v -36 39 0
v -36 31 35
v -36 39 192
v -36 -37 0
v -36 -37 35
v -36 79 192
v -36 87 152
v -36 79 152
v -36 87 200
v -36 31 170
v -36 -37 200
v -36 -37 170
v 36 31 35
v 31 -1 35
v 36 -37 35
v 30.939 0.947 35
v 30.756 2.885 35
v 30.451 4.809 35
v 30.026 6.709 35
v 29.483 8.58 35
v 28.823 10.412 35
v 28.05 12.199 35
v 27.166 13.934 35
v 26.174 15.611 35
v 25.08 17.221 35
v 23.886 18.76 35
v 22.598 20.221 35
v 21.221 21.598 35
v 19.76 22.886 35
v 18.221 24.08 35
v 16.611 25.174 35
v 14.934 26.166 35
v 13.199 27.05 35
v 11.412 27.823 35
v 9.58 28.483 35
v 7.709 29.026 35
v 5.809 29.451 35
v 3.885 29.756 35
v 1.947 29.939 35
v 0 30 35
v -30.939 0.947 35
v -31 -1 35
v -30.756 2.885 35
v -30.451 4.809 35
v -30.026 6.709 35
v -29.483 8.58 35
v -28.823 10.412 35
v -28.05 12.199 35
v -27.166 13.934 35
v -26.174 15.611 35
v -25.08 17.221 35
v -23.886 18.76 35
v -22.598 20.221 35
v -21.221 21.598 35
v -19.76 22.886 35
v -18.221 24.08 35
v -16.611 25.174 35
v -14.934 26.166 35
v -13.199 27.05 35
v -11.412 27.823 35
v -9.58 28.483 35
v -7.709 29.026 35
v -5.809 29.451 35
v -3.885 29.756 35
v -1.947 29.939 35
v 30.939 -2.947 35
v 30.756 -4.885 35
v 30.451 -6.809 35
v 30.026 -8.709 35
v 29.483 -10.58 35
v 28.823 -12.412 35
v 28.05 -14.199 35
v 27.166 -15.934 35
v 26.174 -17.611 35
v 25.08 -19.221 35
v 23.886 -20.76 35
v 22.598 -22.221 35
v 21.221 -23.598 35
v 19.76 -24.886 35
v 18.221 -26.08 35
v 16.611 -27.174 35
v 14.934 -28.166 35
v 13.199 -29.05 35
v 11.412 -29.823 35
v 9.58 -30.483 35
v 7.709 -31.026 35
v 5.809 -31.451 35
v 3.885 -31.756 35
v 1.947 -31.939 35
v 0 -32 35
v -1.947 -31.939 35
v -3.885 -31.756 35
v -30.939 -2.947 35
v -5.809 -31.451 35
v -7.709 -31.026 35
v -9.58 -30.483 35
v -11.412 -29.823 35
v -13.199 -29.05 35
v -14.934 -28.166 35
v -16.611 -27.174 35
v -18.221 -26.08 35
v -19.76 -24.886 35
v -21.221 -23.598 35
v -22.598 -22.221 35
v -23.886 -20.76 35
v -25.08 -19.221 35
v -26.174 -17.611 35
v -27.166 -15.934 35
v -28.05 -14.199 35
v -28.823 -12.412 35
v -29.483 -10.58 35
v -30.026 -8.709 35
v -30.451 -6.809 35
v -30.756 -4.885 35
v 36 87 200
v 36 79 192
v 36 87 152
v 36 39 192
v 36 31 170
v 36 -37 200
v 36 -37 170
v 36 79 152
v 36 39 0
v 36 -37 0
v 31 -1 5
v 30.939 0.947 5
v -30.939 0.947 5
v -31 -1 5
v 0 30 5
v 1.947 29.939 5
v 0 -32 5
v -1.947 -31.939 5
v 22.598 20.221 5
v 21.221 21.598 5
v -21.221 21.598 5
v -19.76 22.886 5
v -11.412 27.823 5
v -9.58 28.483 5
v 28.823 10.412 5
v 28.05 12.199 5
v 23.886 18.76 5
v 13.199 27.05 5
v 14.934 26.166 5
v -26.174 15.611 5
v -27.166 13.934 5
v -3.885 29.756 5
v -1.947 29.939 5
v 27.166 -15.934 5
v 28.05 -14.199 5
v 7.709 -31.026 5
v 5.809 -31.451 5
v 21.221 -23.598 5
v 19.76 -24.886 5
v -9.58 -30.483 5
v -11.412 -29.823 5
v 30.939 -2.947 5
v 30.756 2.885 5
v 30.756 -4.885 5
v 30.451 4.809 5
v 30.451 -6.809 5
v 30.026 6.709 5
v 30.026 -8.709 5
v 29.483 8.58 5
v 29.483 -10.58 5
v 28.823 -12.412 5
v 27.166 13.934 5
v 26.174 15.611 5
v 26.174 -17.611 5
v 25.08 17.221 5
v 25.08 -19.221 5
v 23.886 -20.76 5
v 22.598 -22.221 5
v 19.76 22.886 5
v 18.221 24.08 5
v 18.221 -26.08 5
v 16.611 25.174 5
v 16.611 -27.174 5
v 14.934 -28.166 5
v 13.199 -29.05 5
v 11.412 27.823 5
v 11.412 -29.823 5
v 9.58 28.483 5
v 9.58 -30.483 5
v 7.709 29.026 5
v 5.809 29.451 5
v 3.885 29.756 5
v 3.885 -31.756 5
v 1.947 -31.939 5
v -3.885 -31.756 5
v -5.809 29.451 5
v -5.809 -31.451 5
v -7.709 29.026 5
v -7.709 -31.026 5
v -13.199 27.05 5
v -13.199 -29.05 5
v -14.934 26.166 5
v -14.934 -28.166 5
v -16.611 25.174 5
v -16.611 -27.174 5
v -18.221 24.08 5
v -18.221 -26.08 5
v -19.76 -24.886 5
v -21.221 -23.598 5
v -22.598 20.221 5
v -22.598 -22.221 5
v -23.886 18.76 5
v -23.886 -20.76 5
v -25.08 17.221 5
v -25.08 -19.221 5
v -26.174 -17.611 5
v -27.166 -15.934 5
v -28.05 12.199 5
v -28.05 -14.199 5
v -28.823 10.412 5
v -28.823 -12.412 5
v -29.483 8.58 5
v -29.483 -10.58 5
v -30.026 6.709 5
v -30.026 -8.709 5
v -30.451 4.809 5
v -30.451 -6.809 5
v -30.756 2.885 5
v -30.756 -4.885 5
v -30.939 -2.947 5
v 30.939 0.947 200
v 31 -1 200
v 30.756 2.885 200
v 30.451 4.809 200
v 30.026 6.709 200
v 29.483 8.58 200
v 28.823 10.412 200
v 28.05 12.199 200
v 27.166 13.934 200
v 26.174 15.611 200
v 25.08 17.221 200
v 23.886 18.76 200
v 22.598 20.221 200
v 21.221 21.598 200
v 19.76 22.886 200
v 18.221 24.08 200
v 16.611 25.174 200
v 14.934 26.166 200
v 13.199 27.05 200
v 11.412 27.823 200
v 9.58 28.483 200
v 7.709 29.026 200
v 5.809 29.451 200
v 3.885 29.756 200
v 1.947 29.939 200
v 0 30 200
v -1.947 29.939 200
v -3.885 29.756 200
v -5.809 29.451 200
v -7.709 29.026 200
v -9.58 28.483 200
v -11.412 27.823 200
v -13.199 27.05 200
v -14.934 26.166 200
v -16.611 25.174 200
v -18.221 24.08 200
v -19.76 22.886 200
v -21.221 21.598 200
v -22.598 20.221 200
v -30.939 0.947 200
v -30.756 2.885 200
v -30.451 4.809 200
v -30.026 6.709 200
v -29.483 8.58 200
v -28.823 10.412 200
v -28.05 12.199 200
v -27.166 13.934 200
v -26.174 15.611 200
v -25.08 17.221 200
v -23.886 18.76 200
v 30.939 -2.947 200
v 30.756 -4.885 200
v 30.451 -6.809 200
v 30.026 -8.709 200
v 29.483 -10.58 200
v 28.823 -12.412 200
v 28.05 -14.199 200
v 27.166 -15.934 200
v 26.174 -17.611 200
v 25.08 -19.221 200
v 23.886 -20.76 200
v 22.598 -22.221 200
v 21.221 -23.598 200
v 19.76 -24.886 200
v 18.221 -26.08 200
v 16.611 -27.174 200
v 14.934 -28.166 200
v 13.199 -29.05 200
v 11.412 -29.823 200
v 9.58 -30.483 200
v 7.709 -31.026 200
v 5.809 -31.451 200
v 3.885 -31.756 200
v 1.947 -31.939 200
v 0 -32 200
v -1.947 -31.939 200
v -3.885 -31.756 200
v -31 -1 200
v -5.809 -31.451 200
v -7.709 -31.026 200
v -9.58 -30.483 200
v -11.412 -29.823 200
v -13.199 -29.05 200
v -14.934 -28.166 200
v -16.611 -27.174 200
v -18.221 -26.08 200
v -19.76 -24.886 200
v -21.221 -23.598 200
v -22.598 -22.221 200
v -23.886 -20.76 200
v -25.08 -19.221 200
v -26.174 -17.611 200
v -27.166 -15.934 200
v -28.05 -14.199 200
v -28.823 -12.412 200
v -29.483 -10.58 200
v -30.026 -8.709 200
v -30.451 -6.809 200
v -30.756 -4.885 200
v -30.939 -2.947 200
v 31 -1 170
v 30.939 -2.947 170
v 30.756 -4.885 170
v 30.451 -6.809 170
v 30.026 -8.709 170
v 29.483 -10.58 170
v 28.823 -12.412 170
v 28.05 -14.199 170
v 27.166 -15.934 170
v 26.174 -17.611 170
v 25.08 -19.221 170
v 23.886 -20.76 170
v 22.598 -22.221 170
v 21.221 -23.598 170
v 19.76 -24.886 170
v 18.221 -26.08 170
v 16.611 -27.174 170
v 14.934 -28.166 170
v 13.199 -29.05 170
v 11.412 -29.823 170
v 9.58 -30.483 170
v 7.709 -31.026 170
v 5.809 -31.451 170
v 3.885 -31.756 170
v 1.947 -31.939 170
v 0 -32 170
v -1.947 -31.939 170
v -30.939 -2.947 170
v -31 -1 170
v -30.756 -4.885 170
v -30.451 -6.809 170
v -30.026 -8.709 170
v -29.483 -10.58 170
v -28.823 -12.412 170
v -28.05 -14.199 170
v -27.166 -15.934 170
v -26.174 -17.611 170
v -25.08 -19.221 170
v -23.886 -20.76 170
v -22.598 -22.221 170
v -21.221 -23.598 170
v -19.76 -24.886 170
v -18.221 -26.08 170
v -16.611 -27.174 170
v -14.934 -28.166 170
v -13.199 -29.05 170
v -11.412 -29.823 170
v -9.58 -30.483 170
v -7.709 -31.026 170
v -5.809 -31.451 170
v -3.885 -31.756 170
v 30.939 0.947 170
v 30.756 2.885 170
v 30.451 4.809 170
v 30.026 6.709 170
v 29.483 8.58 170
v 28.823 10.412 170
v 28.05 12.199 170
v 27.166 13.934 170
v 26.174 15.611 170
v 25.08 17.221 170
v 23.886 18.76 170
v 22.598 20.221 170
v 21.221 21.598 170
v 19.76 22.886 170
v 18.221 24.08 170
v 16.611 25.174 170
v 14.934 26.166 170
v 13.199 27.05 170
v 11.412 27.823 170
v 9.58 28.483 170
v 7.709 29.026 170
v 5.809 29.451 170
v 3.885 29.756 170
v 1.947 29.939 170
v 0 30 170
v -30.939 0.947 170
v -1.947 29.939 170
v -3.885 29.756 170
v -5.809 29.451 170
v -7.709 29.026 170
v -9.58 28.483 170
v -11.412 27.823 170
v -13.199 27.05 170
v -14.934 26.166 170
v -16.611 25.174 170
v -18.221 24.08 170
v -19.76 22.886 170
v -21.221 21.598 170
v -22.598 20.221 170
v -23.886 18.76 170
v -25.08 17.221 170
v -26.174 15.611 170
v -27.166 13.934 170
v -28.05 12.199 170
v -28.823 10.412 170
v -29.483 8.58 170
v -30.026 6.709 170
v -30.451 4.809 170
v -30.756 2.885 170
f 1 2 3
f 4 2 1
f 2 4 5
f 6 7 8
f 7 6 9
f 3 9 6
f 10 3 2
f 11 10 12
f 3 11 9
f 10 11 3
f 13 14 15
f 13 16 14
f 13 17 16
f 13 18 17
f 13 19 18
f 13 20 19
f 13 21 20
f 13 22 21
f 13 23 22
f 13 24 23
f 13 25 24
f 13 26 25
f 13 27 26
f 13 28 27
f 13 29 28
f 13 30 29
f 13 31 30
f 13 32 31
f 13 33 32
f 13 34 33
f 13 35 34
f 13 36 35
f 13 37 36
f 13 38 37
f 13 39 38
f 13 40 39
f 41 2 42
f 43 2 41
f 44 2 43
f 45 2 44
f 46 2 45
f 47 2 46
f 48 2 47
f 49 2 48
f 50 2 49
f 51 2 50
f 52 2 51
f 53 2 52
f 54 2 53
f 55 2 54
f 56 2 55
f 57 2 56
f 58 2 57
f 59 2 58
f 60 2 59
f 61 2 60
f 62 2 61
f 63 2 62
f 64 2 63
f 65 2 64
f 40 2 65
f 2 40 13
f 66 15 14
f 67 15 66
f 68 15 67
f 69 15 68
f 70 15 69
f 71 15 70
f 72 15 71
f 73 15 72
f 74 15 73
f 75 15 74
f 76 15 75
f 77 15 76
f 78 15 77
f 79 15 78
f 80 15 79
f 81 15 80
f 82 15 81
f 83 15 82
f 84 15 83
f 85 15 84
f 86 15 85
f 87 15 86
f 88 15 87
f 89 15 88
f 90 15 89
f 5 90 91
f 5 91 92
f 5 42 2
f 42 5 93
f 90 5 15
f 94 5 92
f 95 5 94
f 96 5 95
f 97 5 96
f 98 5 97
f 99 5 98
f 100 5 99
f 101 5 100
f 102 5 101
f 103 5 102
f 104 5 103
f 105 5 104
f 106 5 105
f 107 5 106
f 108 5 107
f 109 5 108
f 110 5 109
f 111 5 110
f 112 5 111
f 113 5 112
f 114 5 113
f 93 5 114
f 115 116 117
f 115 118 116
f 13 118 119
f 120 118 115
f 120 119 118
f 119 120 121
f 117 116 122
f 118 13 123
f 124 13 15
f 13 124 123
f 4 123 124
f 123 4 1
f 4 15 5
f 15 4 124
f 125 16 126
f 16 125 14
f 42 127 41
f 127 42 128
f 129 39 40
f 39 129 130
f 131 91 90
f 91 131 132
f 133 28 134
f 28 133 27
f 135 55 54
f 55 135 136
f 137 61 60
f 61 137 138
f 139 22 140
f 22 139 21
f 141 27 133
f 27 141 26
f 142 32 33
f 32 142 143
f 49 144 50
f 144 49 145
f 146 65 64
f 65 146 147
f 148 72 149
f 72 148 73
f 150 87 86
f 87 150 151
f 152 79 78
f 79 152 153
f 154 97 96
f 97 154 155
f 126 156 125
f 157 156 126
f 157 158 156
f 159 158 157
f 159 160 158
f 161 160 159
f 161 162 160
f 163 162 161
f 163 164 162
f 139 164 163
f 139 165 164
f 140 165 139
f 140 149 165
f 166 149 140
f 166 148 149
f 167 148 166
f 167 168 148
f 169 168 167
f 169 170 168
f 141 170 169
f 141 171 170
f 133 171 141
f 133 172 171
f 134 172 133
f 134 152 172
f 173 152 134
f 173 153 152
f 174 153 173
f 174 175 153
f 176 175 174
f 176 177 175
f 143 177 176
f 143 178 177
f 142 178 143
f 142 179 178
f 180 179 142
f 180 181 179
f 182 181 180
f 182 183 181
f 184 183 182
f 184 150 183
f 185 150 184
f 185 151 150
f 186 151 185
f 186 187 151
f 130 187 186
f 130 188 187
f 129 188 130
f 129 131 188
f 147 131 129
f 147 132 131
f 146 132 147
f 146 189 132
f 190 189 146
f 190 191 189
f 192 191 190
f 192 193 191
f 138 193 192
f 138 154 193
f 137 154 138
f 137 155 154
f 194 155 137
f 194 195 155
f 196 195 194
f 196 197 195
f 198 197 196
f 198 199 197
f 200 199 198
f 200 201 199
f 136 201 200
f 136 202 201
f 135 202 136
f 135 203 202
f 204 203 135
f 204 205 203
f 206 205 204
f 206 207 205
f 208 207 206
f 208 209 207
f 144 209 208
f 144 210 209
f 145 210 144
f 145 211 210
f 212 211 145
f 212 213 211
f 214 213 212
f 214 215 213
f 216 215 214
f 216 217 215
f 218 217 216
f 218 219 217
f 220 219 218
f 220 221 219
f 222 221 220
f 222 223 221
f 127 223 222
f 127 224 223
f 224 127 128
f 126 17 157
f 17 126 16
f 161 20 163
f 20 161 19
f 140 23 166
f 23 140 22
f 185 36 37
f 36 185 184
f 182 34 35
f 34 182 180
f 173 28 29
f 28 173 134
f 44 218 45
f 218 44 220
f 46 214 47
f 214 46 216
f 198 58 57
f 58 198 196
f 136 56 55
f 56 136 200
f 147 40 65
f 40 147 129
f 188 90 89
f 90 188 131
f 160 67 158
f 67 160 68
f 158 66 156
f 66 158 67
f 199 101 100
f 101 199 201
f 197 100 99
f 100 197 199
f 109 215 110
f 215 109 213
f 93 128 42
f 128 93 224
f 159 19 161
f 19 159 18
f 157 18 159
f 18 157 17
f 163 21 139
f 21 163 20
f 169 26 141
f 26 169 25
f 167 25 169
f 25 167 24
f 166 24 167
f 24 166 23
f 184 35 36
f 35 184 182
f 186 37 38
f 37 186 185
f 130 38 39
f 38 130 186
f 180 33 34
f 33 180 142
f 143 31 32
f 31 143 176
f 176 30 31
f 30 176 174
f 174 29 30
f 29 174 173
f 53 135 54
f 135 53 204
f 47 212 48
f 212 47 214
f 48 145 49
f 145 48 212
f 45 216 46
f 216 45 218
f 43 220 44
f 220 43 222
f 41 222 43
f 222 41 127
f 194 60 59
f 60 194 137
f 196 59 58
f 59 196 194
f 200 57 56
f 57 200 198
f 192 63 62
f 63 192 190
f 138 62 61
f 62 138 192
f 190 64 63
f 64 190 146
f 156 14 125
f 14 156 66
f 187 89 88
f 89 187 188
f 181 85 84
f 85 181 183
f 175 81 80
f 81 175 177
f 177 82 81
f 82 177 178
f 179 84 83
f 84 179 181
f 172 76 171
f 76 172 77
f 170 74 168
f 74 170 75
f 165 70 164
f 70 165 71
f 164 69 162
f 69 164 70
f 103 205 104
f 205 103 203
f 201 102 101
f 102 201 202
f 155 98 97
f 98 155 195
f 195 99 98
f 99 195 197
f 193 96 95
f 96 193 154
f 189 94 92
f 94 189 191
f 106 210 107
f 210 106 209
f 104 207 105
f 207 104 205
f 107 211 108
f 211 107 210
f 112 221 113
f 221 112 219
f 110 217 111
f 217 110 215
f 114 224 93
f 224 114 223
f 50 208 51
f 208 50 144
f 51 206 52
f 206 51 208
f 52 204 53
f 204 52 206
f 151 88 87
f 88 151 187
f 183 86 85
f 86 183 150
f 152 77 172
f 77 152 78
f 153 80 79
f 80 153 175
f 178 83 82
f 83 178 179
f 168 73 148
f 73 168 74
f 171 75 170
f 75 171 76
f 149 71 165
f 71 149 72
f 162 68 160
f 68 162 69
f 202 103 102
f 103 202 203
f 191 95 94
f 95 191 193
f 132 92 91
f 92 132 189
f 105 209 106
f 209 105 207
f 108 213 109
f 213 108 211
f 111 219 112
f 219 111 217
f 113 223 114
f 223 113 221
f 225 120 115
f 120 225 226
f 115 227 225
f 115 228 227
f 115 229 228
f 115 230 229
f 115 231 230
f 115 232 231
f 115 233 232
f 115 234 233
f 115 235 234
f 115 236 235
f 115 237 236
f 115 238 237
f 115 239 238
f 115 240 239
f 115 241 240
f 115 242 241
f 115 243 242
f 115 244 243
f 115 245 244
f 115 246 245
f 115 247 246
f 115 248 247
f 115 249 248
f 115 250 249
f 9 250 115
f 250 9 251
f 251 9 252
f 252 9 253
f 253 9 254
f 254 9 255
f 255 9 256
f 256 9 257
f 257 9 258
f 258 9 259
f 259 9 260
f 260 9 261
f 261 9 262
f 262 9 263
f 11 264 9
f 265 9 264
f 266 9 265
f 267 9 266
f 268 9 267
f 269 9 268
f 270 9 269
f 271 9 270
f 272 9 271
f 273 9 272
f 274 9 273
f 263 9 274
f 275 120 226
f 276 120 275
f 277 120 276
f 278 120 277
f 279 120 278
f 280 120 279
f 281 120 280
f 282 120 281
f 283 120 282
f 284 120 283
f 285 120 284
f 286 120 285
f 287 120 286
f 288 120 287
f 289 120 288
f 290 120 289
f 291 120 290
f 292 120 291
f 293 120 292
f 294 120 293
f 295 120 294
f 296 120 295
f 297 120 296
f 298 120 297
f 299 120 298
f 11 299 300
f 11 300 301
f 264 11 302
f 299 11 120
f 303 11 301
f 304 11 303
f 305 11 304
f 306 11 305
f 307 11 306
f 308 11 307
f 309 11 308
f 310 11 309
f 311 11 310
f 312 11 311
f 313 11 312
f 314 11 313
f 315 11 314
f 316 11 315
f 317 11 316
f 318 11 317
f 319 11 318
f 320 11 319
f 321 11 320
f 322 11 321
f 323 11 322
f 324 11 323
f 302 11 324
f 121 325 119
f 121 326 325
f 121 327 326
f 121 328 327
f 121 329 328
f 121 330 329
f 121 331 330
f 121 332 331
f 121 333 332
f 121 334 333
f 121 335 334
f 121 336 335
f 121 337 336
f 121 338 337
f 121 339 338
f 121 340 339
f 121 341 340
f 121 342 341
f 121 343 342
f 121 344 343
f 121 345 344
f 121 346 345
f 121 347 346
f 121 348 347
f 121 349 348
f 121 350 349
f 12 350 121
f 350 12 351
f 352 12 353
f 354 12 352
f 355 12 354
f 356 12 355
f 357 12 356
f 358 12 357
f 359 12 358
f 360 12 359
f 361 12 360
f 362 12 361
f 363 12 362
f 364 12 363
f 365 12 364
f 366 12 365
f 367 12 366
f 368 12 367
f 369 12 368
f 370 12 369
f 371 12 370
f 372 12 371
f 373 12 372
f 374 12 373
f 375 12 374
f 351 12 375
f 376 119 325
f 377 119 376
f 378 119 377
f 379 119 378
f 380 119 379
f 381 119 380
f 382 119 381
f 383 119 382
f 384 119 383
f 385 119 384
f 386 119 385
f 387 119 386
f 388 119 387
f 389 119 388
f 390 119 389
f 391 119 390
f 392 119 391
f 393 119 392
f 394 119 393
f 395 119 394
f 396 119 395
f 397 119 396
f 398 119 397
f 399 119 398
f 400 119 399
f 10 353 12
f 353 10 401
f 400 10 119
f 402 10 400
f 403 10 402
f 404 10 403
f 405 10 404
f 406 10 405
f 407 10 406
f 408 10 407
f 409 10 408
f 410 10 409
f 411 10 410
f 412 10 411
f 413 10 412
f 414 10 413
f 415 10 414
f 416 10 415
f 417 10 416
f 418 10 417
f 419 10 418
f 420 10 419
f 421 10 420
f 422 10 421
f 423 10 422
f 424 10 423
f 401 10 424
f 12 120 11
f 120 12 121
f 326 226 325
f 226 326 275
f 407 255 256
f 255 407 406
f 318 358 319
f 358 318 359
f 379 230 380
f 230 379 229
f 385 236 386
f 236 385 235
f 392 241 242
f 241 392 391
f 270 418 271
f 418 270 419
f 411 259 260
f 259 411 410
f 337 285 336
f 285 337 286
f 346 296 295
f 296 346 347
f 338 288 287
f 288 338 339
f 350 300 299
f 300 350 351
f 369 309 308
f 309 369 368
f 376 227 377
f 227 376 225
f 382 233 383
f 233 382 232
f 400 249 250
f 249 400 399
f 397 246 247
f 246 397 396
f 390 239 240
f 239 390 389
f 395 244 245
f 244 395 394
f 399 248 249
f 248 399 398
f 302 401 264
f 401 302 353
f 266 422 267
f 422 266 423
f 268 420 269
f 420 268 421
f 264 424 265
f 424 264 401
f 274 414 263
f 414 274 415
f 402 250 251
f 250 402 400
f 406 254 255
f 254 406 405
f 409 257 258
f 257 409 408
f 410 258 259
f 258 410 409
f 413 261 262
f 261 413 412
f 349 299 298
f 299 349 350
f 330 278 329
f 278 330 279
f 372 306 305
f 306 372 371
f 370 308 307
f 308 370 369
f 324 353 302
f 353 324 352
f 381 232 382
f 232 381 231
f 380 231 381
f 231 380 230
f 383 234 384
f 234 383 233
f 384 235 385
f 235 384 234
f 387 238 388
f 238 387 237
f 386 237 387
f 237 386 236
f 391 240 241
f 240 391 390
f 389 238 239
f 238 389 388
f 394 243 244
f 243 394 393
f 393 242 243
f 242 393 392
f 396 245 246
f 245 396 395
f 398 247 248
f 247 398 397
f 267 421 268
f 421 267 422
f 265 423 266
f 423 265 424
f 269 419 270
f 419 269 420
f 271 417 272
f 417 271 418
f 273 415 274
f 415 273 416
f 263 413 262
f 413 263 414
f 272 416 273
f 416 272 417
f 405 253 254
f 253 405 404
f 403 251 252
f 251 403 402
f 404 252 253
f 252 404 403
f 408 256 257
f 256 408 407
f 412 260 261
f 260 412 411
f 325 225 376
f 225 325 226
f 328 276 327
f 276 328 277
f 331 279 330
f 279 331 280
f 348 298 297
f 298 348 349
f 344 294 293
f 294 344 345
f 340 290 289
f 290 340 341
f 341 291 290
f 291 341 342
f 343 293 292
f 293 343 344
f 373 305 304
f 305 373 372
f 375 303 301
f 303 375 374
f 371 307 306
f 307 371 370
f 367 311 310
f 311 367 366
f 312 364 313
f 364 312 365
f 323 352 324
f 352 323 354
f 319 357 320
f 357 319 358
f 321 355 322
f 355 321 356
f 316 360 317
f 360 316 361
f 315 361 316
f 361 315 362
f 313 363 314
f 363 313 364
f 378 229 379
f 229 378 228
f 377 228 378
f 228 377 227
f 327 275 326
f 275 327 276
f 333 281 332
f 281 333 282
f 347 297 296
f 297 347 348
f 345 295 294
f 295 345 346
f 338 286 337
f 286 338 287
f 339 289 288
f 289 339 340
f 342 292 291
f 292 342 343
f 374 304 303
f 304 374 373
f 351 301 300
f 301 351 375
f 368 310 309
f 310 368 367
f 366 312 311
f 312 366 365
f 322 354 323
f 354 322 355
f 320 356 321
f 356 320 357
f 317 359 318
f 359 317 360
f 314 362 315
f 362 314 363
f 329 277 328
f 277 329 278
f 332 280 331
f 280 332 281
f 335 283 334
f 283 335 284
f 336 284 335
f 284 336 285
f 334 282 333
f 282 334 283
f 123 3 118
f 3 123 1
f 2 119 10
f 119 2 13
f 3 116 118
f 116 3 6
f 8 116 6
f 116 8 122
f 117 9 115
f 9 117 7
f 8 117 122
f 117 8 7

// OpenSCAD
inner_width_of_collars = 61;
height_of_holder       = 200; 
depth_of_hook          = 40;
height_of_hook         = 40;
height_of_collars      = 30; 
thickness_of_holder    = 8;
thickness_of_collars   = 5;
thickness_of_bottom    = 5; 
$fn=100;

BASE_WIDTH            = inner_width_of_collars + 1;
OUTER_DIAMETER        = BASE_WIDTH + thickness_of_collars * 2;
HOLDER_POSITION       = BASE_WIDTH / 2 + thickness_of_holder / 2;
width_of_holder       = OUTER_DIAMETER;
upper_collar_position = height_of_holder - height_of_collars; 

module Holder() {
    translate([0, HOLDER_POSITION, height_of_holder / 2]) {
        cube(size = [width_of_holder, thickness_of_holder, height_of_holder], center = true);
    }
    difference() {
        translate([0,-1,(thickness_of_bottom + height_of_collars)/2])            
            cube([OUTER_DIAMETER,OUTER_DIAMETER,thickness_of_bottom + height_of_collars],true);
        translate([0,-1,thickness_of_bottom])
            cylinder(h=height_of_collars+.1 , d=BASE_WIDTH);
    }
    translate([0, -1, upper_collar_position]) {
        difference() 
        {
            translate([0,0,height_of_collars/2])            
                cube([OUTER_DIAMETER,OUTER_DIAMETER,height_of_collars],true);
            translate([0,0,-.1])
                cylinder(h=height_of_collars+.2, d=BASE_WIDTH);
        }
    }       
    translate([0, (BASE_WIDTH + depth_of_hook) / 2 + thickness_of_holder, height_of_holder - thickness_of_holder / 2]) {
        cube([width_of_holder, depth_of_hook, thickness_of_holder], center = true);
    }
    translate([0, BASE_WIDTH / 2 + depth_of_hook + thickness_of_holder * 1.5, height_of_holder - height_of_hook / 2 - thickness_of_holder / 2]) {
        cube([width_of_holder, thickness_of_holder, height_of_hook + thickness_of_holder], true);
    } 
}

Holder();
